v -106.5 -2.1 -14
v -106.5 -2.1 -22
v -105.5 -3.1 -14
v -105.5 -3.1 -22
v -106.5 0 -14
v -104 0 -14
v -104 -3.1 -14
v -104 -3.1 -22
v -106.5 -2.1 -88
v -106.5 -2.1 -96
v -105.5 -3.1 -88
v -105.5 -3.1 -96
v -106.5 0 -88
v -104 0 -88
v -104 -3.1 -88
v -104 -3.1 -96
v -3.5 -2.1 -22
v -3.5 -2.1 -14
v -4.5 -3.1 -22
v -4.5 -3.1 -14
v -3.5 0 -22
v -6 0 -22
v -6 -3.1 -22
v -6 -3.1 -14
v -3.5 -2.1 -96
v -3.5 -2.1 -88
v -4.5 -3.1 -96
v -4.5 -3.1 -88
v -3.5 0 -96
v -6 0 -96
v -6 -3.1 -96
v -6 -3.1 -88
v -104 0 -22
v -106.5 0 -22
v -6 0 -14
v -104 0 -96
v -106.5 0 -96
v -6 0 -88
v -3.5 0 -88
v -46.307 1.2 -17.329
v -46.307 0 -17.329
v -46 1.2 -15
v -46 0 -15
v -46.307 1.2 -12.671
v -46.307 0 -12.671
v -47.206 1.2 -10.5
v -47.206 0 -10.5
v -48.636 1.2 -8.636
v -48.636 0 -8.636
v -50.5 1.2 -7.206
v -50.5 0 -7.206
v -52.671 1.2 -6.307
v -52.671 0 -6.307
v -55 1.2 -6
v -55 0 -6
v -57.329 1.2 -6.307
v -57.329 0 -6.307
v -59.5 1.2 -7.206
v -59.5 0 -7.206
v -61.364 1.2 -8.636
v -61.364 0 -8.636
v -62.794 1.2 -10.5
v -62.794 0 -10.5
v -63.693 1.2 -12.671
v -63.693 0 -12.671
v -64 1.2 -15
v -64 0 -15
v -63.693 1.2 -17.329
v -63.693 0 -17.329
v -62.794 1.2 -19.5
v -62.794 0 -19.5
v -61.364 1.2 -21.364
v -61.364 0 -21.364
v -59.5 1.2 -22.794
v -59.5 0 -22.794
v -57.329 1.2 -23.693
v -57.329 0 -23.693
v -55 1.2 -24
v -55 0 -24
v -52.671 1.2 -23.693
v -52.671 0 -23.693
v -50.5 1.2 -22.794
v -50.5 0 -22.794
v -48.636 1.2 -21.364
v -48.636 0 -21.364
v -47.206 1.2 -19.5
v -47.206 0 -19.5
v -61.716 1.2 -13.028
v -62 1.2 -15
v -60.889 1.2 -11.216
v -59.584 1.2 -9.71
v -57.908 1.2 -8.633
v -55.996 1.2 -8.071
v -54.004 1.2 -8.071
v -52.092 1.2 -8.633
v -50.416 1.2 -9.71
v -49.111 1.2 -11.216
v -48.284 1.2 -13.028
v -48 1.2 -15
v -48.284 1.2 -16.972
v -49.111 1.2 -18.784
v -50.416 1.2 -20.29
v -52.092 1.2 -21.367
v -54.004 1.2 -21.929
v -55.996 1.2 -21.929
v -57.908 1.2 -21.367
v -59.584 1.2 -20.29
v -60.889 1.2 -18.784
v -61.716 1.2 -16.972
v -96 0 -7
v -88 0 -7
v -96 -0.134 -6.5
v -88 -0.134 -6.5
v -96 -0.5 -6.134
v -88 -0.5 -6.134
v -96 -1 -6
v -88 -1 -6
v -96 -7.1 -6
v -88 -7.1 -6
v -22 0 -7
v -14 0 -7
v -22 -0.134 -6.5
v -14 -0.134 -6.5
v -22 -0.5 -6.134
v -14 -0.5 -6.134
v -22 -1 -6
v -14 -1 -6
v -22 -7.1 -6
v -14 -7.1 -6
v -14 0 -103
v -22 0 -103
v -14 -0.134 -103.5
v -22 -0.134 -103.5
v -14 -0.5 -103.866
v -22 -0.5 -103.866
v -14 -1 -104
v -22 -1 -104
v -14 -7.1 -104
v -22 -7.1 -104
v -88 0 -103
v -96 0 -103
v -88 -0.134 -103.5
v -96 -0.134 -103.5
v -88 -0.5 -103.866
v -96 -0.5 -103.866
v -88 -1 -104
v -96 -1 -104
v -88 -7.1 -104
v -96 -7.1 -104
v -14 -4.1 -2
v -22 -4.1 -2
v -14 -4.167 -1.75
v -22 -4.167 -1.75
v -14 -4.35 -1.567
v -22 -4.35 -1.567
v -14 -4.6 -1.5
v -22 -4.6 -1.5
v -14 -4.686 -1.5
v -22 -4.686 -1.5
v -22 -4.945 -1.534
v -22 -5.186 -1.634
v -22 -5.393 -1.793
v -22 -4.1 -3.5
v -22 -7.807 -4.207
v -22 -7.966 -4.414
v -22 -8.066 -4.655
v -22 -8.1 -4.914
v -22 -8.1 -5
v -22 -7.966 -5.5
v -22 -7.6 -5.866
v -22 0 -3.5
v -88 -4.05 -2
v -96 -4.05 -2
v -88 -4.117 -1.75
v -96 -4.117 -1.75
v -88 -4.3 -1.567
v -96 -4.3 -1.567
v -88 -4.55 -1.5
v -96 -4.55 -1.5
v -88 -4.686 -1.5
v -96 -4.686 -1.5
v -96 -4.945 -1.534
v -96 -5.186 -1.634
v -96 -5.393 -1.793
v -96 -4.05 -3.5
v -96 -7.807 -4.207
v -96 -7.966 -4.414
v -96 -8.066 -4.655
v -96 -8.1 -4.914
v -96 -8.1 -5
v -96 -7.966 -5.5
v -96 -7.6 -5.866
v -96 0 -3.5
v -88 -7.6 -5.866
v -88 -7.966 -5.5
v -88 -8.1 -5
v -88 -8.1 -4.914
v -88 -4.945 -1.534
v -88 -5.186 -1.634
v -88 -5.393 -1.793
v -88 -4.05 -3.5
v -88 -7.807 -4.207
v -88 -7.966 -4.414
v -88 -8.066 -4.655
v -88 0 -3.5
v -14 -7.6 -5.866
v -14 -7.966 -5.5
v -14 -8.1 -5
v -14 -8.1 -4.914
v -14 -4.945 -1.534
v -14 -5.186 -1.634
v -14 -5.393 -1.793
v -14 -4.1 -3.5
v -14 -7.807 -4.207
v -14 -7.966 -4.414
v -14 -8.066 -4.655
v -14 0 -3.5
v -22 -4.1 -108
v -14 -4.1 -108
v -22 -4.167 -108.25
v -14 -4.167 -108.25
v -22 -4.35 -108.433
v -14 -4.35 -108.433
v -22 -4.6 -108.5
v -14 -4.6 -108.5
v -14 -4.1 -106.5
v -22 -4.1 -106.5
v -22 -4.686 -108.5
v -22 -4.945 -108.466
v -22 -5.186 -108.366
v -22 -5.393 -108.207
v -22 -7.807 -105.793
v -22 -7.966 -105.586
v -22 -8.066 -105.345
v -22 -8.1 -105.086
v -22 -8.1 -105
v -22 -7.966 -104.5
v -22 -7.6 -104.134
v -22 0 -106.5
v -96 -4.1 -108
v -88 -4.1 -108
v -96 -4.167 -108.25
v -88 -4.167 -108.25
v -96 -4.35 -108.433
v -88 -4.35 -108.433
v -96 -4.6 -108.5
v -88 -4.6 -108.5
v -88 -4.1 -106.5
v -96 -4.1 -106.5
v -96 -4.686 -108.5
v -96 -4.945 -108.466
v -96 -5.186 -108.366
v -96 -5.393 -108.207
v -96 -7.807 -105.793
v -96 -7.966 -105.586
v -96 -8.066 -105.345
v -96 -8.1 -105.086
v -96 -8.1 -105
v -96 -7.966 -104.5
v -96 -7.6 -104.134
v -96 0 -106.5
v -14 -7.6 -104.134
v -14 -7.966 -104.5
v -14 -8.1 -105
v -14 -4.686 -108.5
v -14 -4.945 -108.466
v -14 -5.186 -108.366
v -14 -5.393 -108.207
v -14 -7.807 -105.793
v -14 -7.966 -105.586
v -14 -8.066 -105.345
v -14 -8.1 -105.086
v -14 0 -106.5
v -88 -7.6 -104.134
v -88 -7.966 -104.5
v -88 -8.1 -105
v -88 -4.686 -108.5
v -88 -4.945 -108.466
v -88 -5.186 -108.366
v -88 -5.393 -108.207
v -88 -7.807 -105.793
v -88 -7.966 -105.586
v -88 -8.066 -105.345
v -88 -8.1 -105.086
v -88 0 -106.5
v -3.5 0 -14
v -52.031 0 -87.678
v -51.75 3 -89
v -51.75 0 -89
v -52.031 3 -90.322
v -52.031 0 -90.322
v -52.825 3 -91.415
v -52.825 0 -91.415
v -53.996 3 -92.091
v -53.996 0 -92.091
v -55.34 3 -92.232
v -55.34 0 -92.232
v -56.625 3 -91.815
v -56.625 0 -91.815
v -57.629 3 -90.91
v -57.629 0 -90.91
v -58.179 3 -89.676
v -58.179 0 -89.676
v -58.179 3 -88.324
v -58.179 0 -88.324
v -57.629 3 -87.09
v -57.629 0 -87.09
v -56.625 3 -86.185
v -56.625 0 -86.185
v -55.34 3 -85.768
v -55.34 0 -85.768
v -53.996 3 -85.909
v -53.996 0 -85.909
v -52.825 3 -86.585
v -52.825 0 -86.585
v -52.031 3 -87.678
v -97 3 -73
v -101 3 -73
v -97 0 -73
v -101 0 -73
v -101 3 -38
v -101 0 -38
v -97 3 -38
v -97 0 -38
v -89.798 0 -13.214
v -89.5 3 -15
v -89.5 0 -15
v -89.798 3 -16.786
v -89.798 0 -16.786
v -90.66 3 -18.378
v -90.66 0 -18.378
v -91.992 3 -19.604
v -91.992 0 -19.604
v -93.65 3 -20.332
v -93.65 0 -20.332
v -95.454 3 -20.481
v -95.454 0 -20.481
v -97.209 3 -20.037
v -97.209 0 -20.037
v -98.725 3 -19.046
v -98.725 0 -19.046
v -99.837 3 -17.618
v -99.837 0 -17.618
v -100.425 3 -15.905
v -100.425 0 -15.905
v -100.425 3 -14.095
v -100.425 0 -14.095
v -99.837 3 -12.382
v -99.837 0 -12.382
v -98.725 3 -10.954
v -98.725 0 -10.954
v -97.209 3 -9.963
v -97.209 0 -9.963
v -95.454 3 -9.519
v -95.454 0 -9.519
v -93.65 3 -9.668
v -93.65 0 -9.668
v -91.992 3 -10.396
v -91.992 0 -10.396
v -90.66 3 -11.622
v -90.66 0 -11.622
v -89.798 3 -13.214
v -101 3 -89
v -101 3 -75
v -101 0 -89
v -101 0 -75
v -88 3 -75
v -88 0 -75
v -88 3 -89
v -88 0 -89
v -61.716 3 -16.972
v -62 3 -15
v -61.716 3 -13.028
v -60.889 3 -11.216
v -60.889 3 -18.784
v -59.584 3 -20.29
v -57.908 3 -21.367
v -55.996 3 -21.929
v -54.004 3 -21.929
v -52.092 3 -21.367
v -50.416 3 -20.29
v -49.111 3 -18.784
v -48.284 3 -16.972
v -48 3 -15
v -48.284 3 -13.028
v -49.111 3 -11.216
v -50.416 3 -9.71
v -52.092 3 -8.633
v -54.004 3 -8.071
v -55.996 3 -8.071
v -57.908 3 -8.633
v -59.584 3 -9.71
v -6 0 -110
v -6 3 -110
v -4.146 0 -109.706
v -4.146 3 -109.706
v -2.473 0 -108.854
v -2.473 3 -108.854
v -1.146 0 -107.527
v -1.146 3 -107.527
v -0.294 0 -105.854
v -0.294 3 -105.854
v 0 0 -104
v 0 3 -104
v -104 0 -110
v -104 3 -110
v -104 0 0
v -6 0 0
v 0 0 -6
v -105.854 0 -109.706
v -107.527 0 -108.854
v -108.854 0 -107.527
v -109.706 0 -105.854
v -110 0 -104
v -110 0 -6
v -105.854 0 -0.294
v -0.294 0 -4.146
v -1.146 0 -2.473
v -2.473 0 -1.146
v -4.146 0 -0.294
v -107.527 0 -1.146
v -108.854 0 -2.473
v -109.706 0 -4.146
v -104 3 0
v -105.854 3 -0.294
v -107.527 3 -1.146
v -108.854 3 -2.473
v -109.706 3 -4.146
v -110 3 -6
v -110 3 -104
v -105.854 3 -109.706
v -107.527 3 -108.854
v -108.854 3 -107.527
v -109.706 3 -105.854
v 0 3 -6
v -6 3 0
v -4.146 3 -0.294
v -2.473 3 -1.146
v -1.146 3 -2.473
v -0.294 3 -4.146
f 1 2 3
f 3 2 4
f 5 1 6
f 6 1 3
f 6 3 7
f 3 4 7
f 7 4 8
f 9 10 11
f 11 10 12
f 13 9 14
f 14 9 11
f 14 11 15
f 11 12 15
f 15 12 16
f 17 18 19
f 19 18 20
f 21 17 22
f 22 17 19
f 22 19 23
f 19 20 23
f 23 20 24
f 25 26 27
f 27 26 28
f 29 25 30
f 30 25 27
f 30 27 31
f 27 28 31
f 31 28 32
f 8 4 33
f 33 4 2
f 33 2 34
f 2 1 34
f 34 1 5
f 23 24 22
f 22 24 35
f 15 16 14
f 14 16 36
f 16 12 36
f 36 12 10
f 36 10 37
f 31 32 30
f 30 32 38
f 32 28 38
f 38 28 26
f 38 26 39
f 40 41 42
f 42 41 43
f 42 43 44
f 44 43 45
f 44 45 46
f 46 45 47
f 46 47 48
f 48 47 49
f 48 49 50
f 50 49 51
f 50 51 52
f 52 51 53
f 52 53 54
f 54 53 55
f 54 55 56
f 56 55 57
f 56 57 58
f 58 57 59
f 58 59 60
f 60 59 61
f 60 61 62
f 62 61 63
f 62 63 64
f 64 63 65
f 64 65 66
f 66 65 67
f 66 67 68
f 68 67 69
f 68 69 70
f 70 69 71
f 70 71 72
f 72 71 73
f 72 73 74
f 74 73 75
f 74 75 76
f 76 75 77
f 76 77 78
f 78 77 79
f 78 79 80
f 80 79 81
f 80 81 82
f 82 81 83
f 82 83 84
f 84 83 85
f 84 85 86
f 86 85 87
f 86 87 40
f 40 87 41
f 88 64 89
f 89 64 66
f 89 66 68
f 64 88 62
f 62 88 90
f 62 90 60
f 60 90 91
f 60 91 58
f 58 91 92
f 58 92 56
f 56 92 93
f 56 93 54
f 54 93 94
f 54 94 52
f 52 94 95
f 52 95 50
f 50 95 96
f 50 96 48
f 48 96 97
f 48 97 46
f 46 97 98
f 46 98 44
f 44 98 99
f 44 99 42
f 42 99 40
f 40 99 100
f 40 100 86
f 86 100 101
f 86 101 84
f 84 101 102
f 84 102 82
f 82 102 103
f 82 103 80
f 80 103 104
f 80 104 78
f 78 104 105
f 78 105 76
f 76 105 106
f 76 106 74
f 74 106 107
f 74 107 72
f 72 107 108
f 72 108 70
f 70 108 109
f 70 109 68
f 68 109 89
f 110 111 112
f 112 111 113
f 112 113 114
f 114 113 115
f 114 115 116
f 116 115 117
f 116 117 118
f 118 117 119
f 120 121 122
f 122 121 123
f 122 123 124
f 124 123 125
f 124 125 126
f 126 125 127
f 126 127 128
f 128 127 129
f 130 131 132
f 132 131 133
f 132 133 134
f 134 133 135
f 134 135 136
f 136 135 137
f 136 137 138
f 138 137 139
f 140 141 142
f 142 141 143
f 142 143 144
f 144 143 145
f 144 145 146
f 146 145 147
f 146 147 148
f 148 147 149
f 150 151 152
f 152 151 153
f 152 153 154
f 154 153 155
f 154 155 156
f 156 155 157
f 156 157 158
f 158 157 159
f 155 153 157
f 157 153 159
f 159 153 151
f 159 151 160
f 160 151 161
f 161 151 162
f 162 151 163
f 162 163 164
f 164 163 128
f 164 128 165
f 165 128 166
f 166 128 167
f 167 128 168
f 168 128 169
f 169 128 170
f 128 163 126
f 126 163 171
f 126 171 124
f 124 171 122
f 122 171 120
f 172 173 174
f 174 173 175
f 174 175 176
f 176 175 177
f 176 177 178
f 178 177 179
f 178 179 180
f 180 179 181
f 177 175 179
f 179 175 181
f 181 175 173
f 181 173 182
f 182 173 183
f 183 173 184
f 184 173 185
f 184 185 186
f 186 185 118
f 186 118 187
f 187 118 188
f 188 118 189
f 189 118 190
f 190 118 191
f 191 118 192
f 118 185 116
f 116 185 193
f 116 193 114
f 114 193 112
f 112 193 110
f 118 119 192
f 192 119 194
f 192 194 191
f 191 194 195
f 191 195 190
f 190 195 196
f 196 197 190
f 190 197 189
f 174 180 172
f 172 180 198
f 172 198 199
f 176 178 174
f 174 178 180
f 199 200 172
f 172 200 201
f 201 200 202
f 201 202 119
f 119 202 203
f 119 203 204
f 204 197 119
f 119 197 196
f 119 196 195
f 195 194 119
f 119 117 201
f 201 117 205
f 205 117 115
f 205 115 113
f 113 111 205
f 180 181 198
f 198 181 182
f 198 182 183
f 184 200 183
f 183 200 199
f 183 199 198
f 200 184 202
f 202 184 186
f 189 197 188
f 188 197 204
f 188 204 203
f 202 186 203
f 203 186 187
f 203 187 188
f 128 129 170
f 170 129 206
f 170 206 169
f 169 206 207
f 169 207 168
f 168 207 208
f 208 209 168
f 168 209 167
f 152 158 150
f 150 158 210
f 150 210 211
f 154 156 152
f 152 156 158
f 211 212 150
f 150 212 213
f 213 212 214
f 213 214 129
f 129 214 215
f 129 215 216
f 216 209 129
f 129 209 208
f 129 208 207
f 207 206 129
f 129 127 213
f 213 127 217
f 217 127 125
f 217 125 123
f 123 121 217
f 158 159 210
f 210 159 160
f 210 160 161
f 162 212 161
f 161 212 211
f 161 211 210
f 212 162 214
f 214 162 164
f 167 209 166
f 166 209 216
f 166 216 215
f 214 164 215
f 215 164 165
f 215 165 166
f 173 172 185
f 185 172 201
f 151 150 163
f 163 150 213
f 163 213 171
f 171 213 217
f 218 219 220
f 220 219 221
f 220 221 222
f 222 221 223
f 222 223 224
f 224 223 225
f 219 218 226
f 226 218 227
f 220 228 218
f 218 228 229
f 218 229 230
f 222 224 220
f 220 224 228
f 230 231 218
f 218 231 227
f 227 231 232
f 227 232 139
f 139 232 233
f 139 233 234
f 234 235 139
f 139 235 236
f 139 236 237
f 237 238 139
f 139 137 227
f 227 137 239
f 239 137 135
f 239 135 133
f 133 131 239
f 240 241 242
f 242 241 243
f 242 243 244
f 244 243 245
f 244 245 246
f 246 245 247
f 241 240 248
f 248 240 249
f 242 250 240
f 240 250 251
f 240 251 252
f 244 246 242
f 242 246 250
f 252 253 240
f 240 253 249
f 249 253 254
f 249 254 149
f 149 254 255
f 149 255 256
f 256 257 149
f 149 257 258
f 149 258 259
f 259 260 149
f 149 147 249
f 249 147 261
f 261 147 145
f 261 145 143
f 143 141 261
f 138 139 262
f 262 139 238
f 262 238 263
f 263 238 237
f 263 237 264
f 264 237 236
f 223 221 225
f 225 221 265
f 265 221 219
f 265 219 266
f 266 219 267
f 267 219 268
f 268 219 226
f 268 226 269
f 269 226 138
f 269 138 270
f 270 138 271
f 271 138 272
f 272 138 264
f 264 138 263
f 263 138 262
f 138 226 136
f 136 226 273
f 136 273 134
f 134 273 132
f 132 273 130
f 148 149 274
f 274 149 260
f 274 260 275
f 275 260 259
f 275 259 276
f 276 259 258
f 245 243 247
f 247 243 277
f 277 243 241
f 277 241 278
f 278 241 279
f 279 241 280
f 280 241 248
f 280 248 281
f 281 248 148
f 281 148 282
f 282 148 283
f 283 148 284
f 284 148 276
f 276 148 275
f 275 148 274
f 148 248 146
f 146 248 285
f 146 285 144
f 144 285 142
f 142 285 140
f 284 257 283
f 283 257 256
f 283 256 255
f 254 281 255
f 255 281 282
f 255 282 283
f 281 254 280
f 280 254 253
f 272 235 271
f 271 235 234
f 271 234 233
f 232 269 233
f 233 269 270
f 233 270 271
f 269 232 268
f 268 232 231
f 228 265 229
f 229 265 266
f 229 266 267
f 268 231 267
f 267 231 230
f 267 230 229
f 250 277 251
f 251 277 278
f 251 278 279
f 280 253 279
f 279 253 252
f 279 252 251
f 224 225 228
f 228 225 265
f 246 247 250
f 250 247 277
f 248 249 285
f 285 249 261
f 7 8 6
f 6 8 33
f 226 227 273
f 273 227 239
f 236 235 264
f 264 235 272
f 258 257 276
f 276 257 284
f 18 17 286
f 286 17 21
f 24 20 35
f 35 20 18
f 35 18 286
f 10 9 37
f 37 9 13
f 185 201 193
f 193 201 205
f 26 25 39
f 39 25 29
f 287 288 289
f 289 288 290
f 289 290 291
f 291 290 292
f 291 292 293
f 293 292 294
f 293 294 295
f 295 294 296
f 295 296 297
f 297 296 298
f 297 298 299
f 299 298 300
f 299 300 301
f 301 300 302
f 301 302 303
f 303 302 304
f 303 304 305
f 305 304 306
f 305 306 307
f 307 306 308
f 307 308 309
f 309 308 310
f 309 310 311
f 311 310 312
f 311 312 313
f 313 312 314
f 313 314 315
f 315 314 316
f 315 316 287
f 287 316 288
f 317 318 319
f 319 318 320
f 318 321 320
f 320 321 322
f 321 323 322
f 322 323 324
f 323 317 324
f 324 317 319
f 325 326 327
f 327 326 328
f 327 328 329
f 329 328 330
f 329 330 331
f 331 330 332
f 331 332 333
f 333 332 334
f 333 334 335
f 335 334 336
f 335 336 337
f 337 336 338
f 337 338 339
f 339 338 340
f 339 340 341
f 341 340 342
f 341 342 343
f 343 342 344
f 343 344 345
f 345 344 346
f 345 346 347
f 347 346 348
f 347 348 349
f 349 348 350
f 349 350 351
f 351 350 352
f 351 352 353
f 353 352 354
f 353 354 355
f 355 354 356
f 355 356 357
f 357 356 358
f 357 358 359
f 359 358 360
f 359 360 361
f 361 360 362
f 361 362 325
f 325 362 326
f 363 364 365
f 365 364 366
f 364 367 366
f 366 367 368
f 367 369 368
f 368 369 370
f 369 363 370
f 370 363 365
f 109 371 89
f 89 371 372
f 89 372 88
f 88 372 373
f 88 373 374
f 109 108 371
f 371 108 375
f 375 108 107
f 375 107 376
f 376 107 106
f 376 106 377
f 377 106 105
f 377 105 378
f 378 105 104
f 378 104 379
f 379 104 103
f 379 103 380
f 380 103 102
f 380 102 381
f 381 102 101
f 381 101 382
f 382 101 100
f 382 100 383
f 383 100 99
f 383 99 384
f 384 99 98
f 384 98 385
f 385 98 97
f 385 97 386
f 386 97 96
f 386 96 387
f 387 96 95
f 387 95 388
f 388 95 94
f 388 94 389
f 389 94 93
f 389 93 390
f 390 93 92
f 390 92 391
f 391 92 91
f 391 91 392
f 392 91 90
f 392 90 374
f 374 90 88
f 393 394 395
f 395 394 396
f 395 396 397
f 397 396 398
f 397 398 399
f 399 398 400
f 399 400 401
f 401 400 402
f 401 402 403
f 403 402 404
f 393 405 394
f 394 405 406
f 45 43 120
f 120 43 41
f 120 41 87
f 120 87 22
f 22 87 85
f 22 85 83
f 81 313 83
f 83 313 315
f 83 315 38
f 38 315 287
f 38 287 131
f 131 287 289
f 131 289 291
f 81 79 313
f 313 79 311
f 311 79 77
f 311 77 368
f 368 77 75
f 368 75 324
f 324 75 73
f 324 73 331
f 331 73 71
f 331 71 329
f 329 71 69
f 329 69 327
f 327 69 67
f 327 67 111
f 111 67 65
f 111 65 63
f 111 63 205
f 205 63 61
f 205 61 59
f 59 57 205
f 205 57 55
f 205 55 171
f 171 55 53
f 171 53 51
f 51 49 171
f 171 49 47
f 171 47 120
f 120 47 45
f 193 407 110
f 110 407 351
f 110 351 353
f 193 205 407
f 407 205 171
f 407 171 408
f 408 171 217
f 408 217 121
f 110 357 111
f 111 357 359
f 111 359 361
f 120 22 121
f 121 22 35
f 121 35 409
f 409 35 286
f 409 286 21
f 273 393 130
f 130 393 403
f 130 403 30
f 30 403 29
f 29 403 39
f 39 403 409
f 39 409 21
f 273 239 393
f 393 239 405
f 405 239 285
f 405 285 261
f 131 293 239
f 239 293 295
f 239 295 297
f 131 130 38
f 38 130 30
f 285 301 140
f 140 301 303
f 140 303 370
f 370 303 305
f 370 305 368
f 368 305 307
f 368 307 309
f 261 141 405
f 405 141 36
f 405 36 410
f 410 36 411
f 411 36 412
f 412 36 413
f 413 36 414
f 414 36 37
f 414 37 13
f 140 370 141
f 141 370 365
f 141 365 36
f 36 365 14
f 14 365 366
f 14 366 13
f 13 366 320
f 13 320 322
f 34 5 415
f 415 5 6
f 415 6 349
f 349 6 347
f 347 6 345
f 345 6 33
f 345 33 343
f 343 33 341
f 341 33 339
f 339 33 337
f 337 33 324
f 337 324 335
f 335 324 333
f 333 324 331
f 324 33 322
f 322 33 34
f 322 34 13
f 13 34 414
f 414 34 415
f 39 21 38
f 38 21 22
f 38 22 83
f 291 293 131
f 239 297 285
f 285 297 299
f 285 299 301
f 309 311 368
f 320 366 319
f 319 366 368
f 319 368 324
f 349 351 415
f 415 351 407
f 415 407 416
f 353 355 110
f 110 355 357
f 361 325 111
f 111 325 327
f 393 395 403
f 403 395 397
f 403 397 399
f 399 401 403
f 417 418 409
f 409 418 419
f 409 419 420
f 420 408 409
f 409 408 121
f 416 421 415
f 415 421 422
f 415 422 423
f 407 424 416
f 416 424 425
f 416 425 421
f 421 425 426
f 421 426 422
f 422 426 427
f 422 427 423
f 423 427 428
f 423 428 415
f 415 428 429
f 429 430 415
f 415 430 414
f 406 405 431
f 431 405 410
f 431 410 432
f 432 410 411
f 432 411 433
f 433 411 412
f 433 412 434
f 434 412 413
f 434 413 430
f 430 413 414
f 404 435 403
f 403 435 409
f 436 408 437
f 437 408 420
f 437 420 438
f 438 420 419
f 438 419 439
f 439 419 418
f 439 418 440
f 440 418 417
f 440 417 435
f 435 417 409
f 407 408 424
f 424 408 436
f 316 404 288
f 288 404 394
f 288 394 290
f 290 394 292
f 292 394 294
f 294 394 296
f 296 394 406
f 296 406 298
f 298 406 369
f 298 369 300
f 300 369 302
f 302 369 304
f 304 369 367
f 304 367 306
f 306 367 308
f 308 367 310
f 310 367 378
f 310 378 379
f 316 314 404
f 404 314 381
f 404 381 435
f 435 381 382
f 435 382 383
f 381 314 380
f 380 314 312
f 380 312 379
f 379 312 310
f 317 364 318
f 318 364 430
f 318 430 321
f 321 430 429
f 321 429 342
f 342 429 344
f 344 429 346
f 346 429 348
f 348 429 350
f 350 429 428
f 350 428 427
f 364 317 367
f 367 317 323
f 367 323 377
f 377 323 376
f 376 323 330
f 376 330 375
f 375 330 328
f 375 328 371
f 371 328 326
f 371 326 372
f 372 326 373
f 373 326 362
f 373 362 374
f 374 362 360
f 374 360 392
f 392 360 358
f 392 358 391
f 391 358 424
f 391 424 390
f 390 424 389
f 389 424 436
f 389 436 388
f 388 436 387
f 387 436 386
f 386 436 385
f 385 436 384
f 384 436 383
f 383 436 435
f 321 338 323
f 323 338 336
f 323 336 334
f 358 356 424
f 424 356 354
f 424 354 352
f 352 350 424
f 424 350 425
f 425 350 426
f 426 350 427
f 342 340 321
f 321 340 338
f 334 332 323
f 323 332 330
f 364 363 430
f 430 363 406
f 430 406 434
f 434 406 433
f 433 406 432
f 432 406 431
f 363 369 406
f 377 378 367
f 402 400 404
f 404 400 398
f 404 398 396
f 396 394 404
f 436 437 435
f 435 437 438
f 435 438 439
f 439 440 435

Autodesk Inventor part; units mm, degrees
ref_plane "YZ Plane" through (0, 0, 0) normal (1, 0, 0) x (0, 1, 0)
ref_plane "XZ Plane" through (0, 0, 0) normal (0, 1, 0) x (-1, 0, 0)
ref_plane "XY Plane" through (0, 0, 0) normal (0, 0, 1) x (1, 0, 0)
sketch "Sketch1" plane through (0, 0, 0) normal (0, 1, 0) x (-1, 0, 0)
  line L0 (6, 0) -> (110, 0)
  line L1 (110, 0) -> (110, -104)
  line L2 (104, -110) -> (0, -110)
  line L3 (0, -110) -> (0, -6)
  arc A0 (104, -110) -> (110, -104) centre (104, -104) ccw
  arc A1 (6, 0) -> (0, -6) centre (6, -6) ccw
  point P0 (0, 0)
  point P1 (110, -110)
  dimension "d0" = 110
  dimension "d1" = 110
  dimension "d2" = 6
extrude "Extrusion1" add sketch "Sketch1" along normal blind 3
fillet "Fillet1" radius 6 2 edges at (-110, 1.5, 0) (0, 1.5, -110)
sketch "Sketch2" plane through (0, 3, 0) normal (0, 1, 0) x (1, 0, 0)
  line L0 (-88, 75) -> (-101, 75)
  line L1 (-101, 75) -> (-101, 89)
  line L2 (-101, 89) -> (-88, 89)
  line L3 (-88, 89) -> (-88, 75)
  line L4 (-6, 110) -> (-104, 110) projected
  line L5 (-110, 104) -> (-110, 6) projected
  line L6 (-101, 38) -> (-97, 38)
  line L7 (-97, 38) -> (-97, 73)
  line L8 (-97, 73) -> (-101, 73)
  line L9 (-101, 73) -> (-101, 38)
  circle A0 centre (-55, 89) radius 3.25
  circle A1 centre (-95, 15) radius 5.5
  line L10 (-104, 0) -> (-6, 0) projected
  circle A2 centre (-55, 15) radius 7
  line L11 (0, 6) -> (0, 104) projected
  point P0 (0, 0)
  point P1 (-94.5, 89)
  point P2 (-99, 73)
  point P3 (-99, 38)
  dimension "d6" = 21
  dimension "d7" = 14
  dimension "d8" = 9
  dimension "d11" = 13
  dimension "d12" = 4
  dimension "d13" = 35
  dimension "d14" = 9
  dimension "d15" = 2
  dimension "d55" = 6.5
  dimension "d56" = 55
  dimension "d57" = 21
  dimension "d58" = 11
  dimension "d59" = 15
  dimension "d60" = 15
  dimension "d61" = 14
  dimension "d62" = 15
  dimension "d63" = 55
extrude "Extrusion2" cut sketch "Sketch2" against normal blind 3
sketch "Sketch3" plane through (0, 0, 0) normal (0, -1, 0) x (1, 0, 0)
  line L0 (-88, -106.5) -> (-96, -106.5)
  line L1 (-96, -106.5) -> (-96, -104)
  line L2 (-96, -104) -> (-88, -104)
  line L3 (-88, -104) -> (-88, -106.5)
  line L4 (-6, -110) -> (-104, -110) projected
  line L5 (-110, -104) -> (-110, -6) projected
  line L6 (-14, -106.5) -> (-22, -106.5)
  line L7 (-22, -106.5) -> (-22, -104)
  line L8 (-22, -104) -> (-14, -104)
  line L9 (-14, -104) -> (-14, -106.5)
  line L10 (-88, -6) -> (-96, -6)
  line L11 (-96, -6) -> (-96, -3.5)
  line L12 (-96, -3.5) -> (-88, -3.5)
  line L13 (-88, -3.5) -> (-88, -6)
  line L14 (-14, -6) -> (-22, -6)
  line L15 (-22, -6) -> (-22, -3.5)
  line L16 (-22, -3.5) -> (-14, -3.5)
  line L17 (-14, -3.5) -> (-14, -6)
  line L18 (-104, -14) -> (-106.5, -14)
  line L19 (-106.5, -14) -> (-106.5, -22)
  line L20 (-106.5, -22) -> (-104, -22)
  line L21 (-104, -22) -> (-104, -14)
  line L22 (-104, 0) -> (-6, 0) projected
  line L23 (-104, -96) -> (-104, -88)
  line L24 (-104, -88) -> (-106.5, -88)
  line L25 (-106.5, -88) -> (-106.5, -96)
  line L26 (-106.5, -96) -> (-104, -96)
  line L27 (-3.5, -22) -> (-3.5, -14)
  line L28 (-3.5, -14) -> (-6, -14)
  line L29 (-6, -14) -> (-6, -22)
  line L30 (-6, -22) -> (-3.5, -22)
  line L31 (-3.5, -96) -> (-3.5, -88)
  line L32 (-3.5, -88) -> (-6, -88)
  line L33 (-6, -88) -> (-6, -96)
  line L34 (-6, -96) -> (-3.5, -96)
  point P0 (0, 0)
  dimension "d20" = 8
  dimension "d21" = 2.5
  dimension "d22" = 3.5
  dimension "d23" = 14
  dimension "d26" = 74
  dimension "d29" = 100.5
  dimension "d67" = 8
  dimension "d68" = 2.5
  dimension "d69" = 3.5
  dimension "d70" = 14
  dimension "d73" = 74
  dimension "d76" = 100.5
extrude "Extrusion3" add sketch "Sketch3" along normal blind 8.1
sketch "Sketch4" plane through (-88, 0, -106.5) normal (0, 0, -1) x (-1, 0, 0)
  line L0 (0, 0) -> (0, -8.1) projected
  line L1 (8, -8.1) -> (0, -8.1)
  line L2 (0, -8.1) -> (0, -4.1)
  line L3 (0, -4.1) -> (8, -4.1)
  line L4 (8, -4.1) -> (8, -8.1)
  line L5 (8, -8.1) -> (0, -8.1) projected
  line L6 (8, 0) -> (8, -8.1) projected
  line L7 (-66, 0) -> (-66, -8.1) projected
  line L8 (-74, 0) -> (-74, -8.1) projected
  line L9 (-66, -8.1) -> (-74, -8.1)
  line L10 (-74, -8.1) -> (-74, -4.1)
  line L11 (-74, -4.1) -> (-66, -4.1)
  line L12 (-66, -4.1) -> (-66, -8.1)
  point P0 (-88, 0)
  point P1 (0, -8.1)
  dimension "d34" = 4
  dimension "d35" = 0
  dimension "d36" = 0
  dimension "d37" = 4
extrude "Extrusion4" add sketch "Sketch4" along normal blind 2
chamfer "Chamfer1" distance 3 angle 45 2 edges at (-92, -8.1, -108.5) (-18, -8.1, -108.5)
fillet "Fillet2" radius 1 6 edges at (-92, -5.1, -108.5) (-18, -5.1, -108.5) (-18, -8.1, -105.5) (-92, -8.1, -105.5) (-92, -8.1, -104) (-18, -8.1, -104)
fillet "Fillet3" radius 0.5 2 edges at (-92, -4.1, -108.5) (-18, -4.1, -108.5)
sketch "Sketch5" plane through (-96, 0, -3.5) normal (0, 0, 1) x (1, 0, 0)
  line L0 (8, 0) -> (8, -8.1) projected
  line L1 (0, 0) -> (0, -8.1) projected
  line L2 (8, -8.1) -> (0, -8.1)
  line L3 (0, -8.1) -> (0, -4.05)
  line L4 (0, -4.05) -> (8, -4.05)
  line L5 (8, -4.05) -> (8, -8.1)
  line L6 (82, -8.1) -> (74, -8.1) projected
  line L7 (82, -8.1) -> (74, -8.1)
  line L8 (74, -8.1) -> (74, -4.1)
  line L9 (74, -4.1) -> (82, -4.1)
  line L10 (82, -4.1) -> (82, -8.1)
  point P0 (96, 0)
  point P1 (8, -4.05)
  dimension "d45" = 4.05
extrude "Extrusion5" add sketch "Sketch5" along normal blind 2
chamfer "Chamfer2" distance 3 angle 45 2 edges at (-92, -8.1, -1.5) (-18, -8.1, -1.5)
fillet "Fillet4" radius 1 6 edges at (-18, -8.1, -4.5) (-18, -5.1, -1.5) (-18, -8.1, -6) (-92, -8.1, -4.5) (-92, -5.1, -1.5) (-92, -8.1, -6)
fillet "Fillet5" radius 0.5 2 edges at (-92, -4.05, -1.5) (-18, -4.1, -1.5)
fillet "Fillet6" radius 1 1 edges at (-92, 0, -104)
fillet "Fillet7" radius 1 3 edges at (-18, 0, -104) (-18, 0, -6) (-92, 0, -6)
sketch "Sketch6" plane through (0, 0, 0) normal (0, -1, 0) x (1, 0, 0)
  circle A0 centre (-55, -15) radius 7 projected
  circle A1 centre (-55, -15) radius 9
  point P0 (0, 0)
  dimension "d64" = 18
extrude "Extrusion6" cut sketch "Sketch6" against normal blind 1.2 contours A0 | A1
sketch "Sketch7" plane through (0, -8.1, 0) normal (0, -1, 0) x (1, 0, 0)
  line L0 (-106.5, -14) -> (-106.5, -22) projected
  line L1 (-104, -22) -> (-104, -14) projected
  line L2 (-106.5, -14) -> (-104, -14)
  line L3 (-104, -14) -> (-104, -22)
  line L4 (-104, -22) -> (-106.5, -22)
  line L5 (-106.5, -22) -> (-106.5, -14)
  line L6 (-104, -88) -> (-106.5, -88) projected
  line L7 (-106.5, -88) -> (-104, -88)
  line L8 (-104, -88) -> (-104, -96)
  line L9 (-104, -96) -> (-106.5, -96)
  line L10 (-106.5, -96) -> (-106.5, -88)
  line L11 (-6, -22) -> (-6, -14) projected
  line L12 (-3.5, -14) -> (-3.5, -22) projected
  line L13 (-6, -14) -> (-3.5, -14)
  line L14 (-3.5, -14) -> (-3.5, -22)
  line L15 (-3.5, -22) -> (-6, -22)
  line L16 (-6, -22) -> (-6, -14)
  line L17 (-6, -88) -> (-3.5, -88) projected
  line L18 (-3.5, -96) -> (-6, -96) projected
  line L19 (-6, -88) -> (-3.5, -88)
  line L20 (-3.5, -88) -> (-3.5, -96)
  line L21 (-3.5, -96) -> (-6, -96)
  line L22 (-6, -96) -> (-6, -88)
  point P0 (0, 0)
  dimension "d81" = 8
extrude "Extrusion7" cut sketch "Sketch7" against normal blind 5
chamfer "Chamfer3" distance 1 angle 45 4 edges at (-3.5, -3.1, -92) (-3.5, -3.1, -18) (-106.5, -3.1, -92) (-106.5, -3.1, -18)
equation "\"d14\" = d8"
equation "\"d56\" = 0.5 * d0"
equation "\"d57\" = d6"
equation "\"d63\" = 0.5 * d0"
equation "\"d26\" = d0 - d20 - 2 * d23"
equation "\"d29\" = d1 - d21 - 2 * d22"
equation "\"d67\" = d20"
equation "\"d68\" = d21"
equation "\"d69\" = d22"
equation "\"d70\" = d23"
equation "\"d73\" = d26"
equation "\"d76\" = d29"
properties part number "Cover-USB side"
